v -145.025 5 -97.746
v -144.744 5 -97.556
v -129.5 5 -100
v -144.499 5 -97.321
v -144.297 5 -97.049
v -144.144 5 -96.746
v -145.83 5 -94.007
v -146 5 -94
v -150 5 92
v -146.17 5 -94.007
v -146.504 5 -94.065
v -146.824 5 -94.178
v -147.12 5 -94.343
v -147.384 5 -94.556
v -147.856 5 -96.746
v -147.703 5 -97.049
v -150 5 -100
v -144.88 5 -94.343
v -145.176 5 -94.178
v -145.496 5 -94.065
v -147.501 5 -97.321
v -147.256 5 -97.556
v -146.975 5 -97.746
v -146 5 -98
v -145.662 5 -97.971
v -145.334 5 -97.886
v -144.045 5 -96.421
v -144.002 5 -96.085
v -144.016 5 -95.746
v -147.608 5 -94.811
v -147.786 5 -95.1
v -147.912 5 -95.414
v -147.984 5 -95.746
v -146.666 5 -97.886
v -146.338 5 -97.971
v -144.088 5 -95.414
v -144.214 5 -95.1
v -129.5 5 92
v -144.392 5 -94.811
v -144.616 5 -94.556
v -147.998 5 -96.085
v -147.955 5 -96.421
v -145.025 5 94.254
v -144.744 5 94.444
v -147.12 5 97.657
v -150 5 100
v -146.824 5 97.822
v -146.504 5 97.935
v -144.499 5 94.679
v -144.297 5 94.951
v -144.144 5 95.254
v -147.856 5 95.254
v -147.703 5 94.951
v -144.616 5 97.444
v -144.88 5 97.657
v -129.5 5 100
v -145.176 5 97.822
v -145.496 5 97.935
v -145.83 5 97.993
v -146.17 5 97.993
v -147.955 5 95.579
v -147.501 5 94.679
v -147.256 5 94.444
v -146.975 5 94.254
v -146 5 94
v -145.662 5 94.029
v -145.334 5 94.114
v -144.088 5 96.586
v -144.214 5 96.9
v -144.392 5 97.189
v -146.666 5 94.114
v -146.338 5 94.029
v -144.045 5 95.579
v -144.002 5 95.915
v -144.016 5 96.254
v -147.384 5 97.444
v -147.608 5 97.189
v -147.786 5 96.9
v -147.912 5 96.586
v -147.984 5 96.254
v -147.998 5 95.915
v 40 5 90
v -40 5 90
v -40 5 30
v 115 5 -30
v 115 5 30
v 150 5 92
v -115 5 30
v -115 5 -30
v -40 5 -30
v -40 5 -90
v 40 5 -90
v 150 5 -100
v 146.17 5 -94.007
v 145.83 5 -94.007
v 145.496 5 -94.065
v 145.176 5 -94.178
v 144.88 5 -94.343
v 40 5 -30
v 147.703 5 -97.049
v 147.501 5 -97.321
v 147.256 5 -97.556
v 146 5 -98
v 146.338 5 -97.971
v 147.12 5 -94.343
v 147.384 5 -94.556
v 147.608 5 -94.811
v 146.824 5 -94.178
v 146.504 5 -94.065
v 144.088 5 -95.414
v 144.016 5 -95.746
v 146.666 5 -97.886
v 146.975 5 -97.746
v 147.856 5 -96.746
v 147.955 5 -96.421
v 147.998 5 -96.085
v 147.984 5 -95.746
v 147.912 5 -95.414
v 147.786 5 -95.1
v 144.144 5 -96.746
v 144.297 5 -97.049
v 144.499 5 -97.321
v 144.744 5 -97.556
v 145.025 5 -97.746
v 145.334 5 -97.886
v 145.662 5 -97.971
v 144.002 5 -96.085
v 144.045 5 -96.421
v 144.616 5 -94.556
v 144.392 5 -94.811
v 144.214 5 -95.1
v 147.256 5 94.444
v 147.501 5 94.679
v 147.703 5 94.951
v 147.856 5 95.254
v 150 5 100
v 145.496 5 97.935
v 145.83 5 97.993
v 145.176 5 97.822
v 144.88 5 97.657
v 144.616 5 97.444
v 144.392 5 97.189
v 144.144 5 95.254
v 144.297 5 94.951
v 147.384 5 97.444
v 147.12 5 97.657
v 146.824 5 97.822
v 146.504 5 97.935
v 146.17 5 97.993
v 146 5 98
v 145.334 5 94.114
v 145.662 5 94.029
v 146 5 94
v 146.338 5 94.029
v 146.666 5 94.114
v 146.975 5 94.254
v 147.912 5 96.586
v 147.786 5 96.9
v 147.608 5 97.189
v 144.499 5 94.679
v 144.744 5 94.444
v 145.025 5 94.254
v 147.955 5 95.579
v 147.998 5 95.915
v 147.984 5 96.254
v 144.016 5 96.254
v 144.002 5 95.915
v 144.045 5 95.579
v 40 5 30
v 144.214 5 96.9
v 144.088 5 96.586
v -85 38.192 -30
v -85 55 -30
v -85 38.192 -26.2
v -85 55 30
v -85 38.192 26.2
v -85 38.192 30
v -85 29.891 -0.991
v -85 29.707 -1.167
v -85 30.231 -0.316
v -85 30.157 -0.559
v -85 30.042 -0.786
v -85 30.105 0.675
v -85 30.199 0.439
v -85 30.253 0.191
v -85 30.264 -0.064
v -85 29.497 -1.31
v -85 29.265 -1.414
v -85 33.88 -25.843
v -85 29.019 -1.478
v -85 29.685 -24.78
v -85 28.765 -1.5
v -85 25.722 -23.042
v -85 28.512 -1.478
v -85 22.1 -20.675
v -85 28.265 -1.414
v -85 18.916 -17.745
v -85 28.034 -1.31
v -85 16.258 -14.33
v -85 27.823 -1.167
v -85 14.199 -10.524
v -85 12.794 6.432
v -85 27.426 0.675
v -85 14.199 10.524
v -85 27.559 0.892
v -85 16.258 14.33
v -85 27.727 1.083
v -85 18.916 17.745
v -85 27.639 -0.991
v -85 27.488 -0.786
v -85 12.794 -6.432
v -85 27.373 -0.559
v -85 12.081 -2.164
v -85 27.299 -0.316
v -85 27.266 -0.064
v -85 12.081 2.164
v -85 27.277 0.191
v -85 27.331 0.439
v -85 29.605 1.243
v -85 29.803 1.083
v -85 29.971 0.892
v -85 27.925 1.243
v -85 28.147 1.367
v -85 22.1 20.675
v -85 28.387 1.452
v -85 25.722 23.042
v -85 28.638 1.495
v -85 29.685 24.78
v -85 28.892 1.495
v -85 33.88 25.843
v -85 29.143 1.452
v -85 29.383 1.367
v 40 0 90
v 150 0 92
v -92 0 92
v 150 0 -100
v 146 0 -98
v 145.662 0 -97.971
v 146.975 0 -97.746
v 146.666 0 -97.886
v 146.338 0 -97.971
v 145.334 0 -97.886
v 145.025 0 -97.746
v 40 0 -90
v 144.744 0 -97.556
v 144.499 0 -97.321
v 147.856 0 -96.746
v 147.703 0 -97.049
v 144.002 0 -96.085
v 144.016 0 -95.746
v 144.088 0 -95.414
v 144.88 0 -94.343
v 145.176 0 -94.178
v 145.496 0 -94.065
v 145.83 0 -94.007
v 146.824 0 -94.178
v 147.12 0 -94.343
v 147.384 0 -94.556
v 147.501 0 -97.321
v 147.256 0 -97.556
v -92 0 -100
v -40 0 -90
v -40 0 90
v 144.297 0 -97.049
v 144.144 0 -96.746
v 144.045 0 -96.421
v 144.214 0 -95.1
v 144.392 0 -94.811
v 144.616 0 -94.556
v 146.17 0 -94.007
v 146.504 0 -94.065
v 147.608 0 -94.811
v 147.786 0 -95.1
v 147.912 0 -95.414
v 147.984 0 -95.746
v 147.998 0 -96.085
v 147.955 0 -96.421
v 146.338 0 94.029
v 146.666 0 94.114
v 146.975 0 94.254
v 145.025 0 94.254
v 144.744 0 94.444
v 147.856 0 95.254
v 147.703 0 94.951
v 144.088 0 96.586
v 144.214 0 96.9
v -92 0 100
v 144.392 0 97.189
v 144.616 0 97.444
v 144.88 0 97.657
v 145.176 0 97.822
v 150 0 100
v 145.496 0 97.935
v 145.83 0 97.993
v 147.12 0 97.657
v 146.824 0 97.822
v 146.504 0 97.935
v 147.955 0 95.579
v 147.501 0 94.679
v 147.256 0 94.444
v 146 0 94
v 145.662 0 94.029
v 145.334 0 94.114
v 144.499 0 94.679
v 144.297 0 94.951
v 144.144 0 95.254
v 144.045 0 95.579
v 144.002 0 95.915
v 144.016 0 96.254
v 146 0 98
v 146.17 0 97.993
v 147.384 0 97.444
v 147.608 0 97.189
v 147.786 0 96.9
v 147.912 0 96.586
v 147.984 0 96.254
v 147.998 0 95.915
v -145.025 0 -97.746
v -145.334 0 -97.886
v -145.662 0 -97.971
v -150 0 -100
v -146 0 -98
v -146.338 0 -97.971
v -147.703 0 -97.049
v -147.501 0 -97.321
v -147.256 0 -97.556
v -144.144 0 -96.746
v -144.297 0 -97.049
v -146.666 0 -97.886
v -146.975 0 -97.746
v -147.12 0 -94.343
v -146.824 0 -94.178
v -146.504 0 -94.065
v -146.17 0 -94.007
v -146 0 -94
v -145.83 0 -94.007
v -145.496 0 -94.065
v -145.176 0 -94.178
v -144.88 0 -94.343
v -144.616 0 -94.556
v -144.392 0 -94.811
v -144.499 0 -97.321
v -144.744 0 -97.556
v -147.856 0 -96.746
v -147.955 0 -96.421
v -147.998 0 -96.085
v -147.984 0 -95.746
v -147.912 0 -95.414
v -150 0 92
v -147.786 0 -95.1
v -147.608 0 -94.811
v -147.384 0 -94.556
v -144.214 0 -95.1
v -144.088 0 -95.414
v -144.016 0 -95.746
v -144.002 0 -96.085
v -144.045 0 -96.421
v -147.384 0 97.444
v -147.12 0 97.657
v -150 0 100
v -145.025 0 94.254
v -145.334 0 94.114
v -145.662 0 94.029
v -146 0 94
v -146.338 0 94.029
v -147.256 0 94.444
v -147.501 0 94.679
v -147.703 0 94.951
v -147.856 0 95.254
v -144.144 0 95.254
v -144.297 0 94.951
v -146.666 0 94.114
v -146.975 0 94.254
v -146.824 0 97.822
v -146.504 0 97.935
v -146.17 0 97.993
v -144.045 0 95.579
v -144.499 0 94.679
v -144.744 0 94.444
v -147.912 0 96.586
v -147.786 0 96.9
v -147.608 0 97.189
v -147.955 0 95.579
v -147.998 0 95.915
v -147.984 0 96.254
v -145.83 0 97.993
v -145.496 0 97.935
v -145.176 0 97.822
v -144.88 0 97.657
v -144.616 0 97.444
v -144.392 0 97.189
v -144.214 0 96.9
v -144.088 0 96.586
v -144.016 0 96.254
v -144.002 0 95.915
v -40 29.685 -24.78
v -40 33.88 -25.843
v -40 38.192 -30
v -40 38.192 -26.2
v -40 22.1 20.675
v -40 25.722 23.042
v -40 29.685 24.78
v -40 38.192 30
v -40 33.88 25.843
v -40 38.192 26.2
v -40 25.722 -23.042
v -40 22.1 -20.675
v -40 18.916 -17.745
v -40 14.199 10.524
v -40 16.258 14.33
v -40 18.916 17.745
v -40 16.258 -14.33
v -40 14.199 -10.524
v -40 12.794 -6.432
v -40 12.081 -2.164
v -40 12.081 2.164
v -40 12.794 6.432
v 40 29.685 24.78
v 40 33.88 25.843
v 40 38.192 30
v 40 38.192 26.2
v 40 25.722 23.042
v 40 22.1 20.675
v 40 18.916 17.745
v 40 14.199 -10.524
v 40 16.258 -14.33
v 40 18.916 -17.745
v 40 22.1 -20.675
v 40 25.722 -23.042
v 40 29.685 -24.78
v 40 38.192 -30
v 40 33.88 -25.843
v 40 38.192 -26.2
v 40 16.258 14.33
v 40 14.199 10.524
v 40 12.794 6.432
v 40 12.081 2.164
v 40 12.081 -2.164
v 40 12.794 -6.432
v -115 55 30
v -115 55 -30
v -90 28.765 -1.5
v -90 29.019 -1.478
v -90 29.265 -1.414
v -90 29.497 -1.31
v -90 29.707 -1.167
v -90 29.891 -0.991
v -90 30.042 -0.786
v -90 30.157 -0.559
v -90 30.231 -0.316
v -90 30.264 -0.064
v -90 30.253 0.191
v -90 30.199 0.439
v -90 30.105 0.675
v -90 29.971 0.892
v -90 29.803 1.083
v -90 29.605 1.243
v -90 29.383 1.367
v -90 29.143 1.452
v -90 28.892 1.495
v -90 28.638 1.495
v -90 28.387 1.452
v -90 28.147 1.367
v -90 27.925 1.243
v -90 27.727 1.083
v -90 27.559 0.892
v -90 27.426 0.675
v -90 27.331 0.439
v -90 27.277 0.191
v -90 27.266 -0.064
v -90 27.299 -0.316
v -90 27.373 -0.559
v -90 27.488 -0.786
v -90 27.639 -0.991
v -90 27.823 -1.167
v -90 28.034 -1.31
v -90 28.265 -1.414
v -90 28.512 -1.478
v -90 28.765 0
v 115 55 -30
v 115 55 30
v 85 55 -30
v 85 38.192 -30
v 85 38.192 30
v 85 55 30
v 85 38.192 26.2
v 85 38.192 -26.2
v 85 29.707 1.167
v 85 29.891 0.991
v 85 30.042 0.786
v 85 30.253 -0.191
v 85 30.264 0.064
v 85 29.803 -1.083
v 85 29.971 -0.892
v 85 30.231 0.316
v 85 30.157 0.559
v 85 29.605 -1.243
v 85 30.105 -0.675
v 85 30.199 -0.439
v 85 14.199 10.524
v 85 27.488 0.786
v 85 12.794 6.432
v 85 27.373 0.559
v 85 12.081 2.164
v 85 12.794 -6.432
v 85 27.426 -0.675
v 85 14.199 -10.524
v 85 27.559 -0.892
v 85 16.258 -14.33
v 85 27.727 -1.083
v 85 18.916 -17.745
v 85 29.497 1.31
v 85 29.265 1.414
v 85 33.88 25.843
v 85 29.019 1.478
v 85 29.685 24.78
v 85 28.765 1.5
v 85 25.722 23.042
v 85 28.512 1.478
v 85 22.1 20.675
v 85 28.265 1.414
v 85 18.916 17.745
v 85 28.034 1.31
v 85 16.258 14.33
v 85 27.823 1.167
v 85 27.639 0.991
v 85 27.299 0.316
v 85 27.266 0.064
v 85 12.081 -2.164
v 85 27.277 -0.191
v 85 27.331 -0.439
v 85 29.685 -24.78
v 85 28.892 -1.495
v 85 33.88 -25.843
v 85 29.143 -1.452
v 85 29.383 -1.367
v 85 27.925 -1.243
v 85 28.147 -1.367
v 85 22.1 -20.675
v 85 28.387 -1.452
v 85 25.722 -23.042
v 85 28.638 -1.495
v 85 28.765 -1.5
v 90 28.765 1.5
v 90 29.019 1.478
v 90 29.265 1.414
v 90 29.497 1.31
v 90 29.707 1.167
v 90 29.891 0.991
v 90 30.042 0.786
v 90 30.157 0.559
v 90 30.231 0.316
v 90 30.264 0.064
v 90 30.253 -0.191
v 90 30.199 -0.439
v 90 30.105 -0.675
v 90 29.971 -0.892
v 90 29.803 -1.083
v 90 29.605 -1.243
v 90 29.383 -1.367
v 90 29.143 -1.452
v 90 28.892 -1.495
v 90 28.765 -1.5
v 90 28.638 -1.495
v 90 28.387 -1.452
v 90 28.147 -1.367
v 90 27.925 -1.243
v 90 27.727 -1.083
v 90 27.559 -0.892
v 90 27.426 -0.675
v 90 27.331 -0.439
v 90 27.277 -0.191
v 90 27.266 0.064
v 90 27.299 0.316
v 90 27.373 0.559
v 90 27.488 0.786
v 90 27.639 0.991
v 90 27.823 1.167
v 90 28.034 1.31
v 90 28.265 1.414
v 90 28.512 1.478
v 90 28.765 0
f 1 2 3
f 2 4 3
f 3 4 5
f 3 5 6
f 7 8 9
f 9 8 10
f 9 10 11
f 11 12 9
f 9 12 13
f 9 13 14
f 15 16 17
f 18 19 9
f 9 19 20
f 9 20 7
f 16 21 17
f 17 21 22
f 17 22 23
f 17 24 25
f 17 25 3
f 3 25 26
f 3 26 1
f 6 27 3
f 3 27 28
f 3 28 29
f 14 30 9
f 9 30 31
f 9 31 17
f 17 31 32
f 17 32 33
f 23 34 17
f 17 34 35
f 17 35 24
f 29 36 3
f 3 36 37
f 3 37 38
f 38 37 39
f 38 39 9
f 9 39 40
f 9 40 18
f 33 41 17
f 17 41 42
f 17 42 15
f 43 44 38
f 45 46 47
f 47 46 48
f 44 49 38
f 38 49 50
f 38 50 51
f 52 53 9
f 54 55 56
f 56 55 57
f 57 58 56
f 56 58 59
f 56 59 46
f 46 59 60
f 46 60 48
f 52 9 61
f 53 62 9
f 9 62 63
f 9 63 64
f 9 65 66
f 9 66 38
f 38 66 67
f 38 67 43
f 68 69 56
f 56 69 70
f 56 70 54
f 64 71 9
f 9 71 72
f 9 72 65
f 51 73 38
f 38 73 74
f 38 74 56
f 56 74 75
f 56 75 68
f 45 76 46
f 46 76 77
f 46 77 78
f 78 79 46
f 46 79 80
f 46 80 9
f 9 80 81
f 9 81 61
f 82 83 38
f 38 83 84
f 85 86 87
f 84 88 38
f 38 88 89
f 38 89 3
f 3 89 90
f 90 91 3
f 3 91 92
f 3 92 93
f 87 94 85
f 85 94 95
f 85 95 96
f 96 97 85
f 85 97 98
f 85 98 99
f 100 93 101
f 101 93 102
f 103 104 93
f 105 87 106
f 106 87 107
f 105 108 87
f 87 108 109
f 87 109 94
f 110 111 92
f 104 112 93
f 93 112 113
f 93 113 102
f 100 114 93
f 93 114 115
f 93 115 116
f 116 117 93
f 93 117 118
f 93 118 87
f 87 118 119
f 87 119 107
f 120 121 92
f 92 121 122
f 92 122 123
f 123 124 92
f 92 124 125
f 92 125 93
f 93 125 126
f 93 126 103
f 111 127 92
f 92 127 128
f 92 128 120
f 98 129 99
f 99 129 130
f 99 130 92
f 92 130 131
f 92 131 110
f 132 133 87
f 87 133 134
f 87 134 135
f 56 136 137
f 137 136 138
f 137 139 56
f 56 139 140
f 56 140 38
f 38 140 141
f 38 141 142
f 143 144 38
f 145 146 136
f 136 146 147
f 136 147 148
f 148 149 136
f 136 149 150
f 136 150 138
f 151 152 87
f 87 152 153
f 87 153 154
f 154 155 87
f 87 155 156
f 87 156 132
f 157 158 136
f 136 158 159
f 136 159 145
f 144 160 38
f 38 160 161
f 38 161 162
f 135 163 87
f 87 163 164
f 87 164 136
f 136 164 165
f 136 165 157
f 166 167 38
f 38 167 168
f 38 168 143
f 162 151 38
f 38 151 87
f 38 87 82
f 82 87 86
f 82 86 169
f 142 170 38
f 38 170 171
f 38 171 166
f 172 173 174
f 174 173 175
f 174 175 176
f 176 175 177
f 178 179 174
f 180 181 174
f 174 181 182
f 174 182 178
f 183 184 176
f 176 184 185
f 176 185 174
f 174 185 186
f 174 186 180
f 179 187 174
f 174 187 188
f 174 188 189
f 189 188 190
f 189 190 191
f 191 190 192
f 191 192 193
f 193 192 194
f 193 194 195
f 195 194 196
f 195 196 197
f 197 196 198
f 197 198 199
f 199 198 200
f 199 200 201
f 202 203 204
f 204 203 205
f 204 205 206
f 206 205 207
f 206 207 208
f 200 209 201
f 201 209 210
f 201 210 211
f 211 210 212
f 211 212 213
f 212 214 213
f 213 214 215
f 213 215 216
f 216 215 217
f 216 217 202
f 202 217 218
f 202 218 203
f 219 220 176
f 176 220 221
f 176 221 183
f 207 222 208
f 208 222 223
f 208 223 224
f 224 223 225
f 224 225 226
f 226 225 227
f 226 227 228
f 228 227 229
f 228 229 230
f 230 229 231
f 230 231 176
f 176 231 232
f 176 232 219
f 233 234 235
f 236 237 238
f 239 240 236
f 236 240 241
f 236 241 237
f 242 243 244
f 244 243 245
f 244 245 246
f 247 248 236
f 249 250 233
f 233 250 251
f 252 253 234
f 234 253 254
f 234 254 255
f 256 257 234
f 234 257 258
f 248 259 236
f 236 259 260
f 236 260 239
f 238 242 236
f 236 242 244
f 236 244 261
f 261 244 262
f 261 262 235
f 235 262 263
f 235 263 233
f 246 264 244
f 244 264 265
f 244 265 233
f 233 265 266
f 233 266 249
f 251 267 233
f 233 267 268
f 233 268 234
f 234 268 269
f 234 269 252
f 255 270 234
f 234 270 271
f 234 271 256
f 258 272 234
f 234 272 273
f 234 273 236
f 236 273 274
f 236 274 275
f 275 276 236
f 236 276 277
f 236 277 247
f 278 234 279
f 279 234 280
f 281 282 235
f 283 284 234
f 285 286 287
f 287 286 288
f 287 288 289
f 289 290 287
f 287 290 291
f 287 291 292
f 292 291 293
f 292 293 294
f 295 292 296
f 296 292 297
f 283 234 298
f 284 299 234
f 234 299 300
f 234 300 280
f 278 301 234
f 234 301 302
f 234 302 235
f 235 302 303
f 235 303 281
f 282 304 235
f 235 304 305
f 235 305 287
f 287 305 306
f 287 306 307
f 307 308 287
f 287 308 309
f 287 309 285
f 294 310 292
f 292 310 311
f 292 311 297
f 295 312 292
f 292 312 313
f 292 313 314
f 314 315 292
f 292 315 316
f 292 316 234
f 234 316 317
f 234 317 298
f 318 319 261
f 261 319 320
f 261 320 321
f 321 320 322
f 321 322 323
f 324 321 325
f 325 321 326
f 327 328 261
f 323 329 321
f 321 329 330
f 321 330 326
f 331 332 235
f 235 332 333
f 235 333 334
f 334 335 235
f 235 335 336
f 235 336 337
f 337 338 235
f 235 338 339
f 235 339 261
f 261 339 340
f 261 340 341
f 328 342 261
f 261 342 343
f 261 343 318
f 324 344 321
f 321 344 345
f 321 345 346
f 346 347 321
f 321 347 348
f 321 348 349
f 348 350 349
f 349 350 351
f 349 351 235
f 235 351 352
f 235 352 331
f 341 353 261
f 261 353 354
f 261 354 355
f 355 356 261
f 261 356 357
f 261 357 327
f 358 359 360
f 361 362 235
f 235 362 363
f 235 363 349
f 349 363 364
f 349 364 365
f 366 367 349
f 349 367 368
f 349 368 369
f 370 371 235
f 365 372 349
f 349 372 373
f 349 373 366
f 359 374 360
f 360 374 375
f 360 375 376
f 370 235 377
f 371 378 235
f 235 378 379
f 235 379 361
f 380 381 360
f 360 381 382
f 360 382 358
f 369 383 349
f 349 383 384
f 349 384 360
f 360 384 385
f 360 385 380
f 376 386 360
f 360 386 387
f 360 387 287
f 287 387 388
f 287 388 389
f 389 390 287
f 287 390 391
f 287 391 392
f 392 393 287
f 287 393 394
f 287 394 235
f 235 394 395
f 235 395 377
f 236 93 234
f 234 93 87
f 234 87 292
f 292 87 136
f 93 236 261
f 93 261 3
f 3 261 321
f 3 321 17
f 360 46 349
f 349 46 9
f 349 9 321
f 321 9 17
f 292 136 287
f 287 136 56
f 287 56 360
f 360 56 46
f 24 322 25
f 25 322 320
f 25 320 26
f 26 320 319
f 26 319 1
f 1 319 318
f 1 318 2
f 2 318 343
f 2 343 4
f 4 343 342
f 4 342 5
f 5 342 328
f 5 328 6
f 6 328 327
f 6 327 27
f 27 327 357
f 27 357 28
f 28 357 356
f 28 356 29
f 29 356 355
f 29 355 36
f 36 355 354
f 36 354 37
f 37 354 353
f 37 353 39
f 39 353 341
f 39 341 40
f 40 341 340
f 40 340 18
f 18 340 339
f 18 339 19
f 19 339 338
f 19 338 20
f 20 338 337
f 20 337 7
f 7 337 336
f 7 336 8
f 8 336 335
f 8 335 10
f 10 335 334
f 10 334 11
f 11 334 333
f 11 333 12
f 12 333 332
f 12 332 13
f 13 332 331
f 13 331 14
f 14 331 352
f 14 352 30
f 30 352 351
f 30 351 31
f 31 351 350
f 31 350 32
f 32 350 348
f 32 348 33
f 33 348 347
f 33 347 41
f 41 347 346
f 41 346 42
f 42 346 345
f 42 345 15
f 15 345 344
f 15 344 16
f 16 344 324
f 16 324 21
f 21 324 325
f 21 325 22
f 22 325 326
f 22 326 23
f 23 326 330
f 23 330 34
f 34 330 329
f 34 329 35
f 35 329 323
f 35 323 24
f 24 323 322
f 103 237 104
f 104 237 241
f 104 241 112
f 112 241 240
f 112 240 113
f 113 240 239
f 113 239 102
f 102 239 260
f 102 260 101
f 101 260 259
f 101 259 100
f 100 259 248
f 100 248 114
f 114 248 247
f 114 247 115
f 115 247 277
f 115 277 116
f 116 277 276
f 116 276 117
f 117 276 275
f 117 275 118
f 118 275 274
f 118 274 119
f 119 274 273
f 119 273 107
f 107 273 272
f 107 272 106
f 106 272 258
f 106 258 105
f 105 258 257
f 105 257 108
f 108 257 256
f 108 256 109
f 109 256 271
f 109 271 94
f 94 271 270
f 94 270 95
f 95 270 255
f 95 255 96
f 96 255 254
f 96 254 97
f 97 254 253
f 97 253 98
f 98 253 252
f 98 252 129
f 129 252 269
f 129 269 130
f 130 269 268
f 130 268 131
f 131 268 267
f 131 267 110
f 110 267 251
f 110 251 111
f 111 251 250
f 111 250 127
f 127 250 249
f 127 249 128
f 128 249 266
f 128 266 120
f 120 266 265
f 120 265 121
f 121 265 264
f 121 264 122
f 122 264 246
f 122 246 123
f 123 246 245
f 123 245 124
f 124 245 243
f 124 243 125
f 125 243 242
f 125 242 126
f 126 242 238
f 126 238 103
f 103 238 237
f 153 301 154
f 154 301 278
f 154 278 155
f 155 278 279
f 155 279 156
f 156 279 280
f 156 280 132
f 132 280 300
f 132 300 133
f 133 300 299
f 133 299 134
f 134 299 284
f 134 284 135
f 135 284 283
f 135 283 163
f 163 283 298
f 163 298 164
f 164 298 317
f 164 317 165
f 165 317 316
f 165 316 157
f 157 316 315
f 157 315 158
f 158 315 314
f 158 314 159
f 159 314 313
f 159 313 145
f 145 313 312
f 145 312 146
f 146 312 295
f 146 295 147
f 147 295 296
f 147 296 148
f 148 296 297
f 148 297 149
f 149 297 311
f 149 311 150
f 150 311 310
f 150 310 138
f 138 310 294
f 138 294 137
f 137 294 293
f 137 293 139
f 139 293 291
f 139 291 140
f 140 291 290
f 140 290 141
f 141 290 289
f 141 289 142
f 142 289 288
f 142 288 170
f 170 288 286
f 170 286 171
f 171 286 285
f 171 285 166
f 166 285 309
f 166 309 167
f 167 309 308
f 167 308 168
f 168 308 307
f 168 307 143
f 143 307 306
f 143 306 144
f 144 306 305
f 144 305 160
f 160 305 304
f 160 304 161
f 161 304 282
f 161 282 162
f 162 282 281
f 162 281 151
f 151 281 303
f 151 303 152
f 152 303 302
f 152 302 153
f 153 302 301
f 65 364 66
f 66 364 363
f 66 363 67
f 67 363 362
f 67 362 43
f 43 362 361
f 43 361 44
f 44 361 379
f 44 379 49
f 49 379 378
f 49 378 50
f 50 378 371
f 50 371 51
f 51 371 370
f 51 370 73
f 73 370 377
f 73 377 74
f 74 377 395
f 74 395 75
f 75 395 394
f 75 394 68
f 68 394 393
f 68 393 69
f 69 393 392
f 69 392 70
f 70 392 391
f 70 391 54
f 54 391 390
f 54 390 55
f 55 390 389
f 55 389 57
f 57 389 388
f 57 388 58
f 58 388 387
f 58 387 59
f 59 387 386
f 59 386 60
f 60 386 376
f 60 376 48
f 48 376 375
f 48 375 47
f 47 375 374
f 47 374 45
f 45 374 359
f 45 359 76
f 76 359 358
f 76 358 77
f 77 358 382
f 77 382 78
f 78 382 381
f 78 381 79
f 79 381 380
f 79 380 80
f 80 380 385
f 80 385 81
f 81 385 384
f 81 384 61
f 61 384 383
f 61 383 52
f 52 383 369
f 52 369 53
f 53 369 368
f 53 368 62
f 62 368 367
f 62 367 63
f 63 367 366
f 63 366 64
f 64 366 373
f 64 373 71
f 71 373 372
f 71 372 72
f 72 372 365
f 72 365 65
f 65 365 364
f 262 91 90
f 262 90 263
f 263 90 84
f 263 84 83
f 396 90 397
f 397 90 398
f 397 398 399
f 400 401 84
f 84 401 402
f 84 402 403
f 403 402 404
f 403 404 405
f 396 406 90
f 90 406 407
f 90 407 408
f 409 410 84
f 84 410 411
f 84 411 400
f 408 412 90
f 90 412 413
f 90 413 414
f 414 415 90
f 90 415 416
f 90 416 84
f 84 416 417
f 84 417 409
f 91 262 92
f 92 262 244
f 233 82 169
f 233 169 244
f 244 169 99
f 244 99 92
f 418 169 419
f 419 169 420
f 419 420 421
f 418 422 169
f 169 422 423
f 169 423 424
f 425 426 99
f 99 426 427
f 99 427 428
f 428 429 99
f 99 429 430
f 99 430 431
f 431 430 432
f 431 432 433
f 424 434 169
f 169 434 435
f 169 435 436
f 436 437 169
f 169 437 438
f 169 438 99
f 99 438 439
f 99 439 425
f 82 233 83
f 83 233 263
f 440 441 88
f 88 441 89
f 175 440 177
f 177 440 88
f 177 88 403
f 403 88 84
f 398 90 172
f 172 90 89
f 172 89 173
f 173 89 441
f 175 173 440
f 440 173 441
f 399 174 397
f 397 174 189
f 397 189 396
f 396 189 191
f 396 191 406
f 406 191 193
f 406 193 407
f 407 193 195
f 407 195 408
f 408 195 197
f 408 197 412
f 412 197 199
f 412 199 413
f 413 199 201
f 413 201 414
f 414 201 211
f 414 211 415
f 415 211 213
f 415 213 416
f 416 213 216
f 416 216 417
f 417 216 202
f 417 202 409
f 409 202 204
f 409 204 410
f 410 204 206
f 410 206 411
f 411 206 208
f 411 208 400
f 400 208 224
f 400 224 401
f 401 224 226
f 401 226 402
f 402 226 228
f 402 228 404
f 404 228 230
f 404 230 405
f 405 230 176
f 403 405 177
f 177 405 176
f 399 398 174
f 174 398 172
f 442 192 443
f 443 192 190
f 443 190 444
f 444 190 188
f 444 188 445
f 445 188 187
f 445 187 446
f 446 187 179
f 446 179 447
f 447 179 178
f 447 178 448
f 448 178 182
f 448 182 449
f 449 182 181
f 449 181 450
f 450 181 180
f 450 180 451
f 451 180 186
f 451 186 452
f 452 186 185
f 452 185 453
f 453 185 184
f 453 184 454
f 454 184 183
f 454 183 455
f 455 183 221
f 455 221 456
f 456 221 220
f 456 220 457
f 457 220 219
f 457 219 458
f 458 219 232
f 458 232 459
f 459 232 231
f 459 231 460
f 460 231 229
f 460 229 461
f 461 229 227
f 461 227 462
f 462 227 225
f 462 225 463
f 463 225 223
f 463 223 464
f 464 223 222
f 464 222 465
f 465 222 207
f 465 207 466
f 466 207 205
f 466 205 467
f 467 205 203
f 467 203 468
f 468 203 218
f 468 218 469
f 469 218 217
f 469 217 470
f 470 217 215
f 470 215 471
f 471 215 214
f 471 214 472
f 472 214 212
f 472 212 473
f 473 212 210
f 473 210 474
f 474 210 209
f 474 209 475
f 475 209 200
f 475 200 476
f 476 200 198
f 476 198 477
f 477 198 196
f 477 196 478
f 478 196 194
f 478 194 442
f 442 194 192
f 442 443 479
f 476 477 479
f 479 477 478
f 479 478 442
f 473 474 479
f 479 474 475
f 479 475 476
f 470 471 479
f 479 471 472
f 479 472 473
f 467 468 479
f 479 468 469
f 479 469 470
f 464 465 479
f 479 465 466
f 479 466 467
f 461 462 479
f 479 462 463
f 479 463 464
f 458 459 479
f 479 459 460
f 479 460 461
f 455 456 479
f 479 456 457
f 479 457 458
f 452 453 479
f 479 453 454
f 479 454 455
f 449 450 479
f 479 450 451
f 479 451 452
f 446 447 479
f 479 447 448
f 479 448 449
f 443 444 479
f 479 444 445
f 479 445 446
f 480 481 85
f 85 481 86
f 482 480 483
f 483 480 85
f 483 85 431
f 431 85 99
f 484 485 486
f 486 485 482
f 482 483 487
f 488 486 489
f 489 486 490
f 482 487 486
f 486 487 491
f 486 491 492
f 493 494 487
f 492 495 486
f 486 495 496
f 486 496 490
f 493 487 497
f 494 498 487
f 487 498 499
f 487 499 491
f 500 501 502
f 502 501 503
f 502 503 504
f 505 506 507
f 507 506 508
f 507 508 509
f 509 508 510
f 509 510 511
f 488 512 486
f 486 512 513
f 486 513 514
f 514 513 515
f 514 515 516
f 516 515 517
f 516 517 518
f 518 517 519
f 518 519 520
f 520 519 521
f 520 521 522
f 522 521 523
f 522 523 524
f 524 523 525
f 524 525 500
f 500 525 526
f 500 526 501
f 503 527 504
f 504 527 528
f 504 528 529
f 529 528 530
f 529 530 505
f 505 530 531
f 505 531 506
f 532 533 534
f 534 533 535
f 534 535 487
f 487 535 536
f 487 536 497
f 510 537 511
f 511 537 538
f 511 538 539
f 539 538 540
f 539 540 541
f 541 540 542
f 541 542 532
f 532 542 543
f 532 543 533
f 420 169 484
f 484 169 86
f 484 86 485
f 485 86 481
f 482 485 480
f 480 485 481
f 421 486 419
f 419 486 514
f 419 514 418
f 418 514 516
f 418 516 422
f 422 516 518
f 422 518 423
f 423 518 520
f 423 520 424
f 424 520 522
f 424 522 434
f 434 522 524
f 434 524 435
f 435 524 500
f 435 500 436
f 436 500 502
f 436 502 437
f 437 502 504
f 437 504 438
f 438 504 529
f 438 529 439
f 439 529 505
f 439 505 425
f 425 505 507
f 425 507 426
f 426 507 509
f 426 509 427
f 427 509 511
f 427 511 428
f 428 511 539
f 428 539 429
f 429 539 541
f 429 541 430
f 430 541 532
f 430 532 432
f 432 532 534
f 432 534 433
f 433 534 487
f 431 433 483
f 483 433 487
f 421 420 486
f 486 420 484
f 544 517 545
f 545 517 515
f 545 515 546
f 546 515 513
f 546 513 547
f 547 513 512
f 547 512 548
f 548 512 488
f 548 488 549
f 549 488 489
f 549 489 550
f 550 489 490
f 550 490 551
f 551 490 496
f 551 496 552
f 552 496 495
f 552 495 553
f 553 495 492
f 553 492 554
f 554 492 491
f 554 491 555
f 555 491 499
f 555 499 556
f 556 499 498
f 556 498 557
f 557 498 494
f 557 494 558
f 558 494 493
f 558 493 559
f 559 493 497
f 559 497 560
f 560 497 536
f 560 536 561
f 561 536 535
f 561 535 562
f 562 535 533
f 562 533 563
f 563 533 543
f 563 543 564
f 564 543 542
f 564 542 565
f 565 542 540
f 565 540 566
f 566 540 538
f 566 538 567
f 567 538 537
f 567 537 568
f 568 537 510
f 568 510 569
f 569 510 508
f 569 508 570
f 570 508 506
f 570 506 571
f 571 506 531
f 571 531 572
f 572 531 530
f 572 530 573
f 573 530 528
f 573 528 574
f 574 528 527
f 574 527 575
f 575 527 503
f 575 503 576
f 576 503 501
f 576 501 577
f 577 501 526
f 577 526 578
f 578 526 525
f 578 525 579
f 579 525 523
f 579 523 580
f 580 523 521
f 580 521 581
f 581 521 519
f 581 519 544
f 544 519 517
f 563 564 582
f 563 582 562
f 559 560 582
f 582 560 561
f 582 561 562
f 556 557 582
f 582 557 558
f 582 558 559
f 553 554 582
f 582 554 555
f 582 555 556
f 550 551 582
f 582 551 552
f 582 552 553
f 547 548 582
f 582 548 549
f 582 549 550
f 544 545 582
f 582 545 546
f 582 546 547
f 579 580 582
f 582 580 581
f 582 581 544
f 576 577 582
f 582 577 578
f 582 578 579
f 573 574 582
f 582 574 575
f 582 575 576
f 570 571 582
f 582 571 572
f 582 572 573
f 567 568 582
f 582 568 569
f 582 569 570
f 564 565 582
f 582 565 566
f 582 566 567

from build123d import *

# Parameters (mm, degrees)
SKETCH1_W           = 300
SKETCH1_H           = 200
SKETCH1_R           = 2
BOSS_EXTRUDE1_DEPTH = 5
CUT_EXTRUDE1_REACH  = 182.347
SKETCH3_W           = 80
SKETCH3_H           = 180
SKETCH4_W           = 30
SKETCH4_H           = 60
BOSS_EXTRUDE2_DEPTH = 50
BOSS_EXTRUDE3_DEPTH = 45
SKETCH7_R           = 1.5
CUT_EXTRUDE2_DEPTH  = 5


with BuildPart() as part:
    # Sketch1 → Boss-Extrude1 (new body)
    with BuildSketch(Plane(origin=(0, 0, 0), x_dir=(1, 0, 0), z_dir=(0, 1, 0))):
        Rectangle(SKETCH1_W, SKETCH1_H)
        with Locations(Location((-146, 96, 0), (0, 0, 270))):
            Circle(SKETCH1_R, mode=Mode.SUBTRACT)
        with Locations(Location((146, 96, 0), (0, 0, 90))):
            Circle(SKETCH1_R, mode=Mode.SUBTRACT)
        with Locations(Location((146, -96, 0), (0, 0, 270))):
            Circle(SKETCH1_R, mode=Mode.SUBTRACT)
        with Locations(Location((-146, -96, 0), (0, 0, 90))):
            Circle(SKETCH1_R, mode=Mode.SUBTRACT)
    extrude(amount=BOSS_EXTRUDE1_DEPTH)

    # Sketch3 → Cut-Extrude1 (cut, up to next)
    with BuildSketch(Plane(origin=(0, 5, 0), x_dir=(1, 0, 0), z_dir=(0, 1, 0)), mode=Mode.PRIVATE) as cut_extrude1_sk1:
        Rectangle(SKETCH3_W, SKETCH3_H)
    cut_extrude1_tool1 = extrude(cut_extrude1_sk1.sketch, amount=-CUT_EXTRUDE1_REACH, mode=Mode.PRIVATE) & part.part
    add(cut_extrude1_tool1.solids().sort_by_distance((0, 5, 0))[0], mode=Mode.SUBTRACT)

    # Sketch4 → Boss-Extrude2 (add)
    with BuildSketch(Plane(origin=(0, 5, 0), x_dir=(1, 0, 0), z_dir=(0, 1, 0))):
        with Locations((-100, 0)):
            Rectangle(SKETCH4_W, SKETCH4_H)
    boss_extrude2 = extrude(amount=BOSS_EXTRUDE2_DEPTH)

    # Sketch5 → Boss-Extrude3 (add)
    with BuildSketch(Plane(origin=(-85, 0, 0), x_dir=(0, 0, -1), z_dir=(1, 0, 0))):
        with BuildLine():
            Line((-26.2, 38.191891423), (-30, 38.191891423))
            Line((-30, 38.191891423), (-30, 5))
            Line((-30, 5), (30, 5))
            Line((30, 5), (30, 38.191891423))
            Line((30, 38.191891423), (26.2, 38.191891423))
            ThreePointArc((26.2, 38.191891423), (0, 11.991891423), (-26.2, 38.191891423))
        make_face()
    boss_extrude3 = extrude(amount=BOSS_EXTRUDE3_DEPTH)

    # Sketch7 → Cut-Extrude2 (cut)
    with BuildSketch(Plane(origin=(-85, 0, 0), x_dir=(0, 0, -1), z_dir=(1, 0, 0))):
        with Locations((0, 28.765136386)):
            Circle(SKETCH7_R)
    cut_extrude2 = extrude(amount=-CUT_EXTRUDE2_DEPTH, mode=Mode.SUBTRACT)

    # Mirror3: Boss-Extrude2, Boss-Extrude3, Cut-Extrude2 across plane
    add(boss_extrude2.mirror(Plane(origin=(0, 0, 0), x_dir=(0, 0, 1), z_dir=(1, 0, 0))))
    add(boss_extrude3.mirror(Plane(origin=(0, 0, 0), x_dir=(0, 0, 1), z_dir=(1, 0, 0))))
    add(cut_extrude2.mirror(Plane(origin=(0, 0, 0), x_dir=(0, 0, 1), z_dir=(1, 0, 0))), mode=Mode.SUBTRACT)


solid = part.part
